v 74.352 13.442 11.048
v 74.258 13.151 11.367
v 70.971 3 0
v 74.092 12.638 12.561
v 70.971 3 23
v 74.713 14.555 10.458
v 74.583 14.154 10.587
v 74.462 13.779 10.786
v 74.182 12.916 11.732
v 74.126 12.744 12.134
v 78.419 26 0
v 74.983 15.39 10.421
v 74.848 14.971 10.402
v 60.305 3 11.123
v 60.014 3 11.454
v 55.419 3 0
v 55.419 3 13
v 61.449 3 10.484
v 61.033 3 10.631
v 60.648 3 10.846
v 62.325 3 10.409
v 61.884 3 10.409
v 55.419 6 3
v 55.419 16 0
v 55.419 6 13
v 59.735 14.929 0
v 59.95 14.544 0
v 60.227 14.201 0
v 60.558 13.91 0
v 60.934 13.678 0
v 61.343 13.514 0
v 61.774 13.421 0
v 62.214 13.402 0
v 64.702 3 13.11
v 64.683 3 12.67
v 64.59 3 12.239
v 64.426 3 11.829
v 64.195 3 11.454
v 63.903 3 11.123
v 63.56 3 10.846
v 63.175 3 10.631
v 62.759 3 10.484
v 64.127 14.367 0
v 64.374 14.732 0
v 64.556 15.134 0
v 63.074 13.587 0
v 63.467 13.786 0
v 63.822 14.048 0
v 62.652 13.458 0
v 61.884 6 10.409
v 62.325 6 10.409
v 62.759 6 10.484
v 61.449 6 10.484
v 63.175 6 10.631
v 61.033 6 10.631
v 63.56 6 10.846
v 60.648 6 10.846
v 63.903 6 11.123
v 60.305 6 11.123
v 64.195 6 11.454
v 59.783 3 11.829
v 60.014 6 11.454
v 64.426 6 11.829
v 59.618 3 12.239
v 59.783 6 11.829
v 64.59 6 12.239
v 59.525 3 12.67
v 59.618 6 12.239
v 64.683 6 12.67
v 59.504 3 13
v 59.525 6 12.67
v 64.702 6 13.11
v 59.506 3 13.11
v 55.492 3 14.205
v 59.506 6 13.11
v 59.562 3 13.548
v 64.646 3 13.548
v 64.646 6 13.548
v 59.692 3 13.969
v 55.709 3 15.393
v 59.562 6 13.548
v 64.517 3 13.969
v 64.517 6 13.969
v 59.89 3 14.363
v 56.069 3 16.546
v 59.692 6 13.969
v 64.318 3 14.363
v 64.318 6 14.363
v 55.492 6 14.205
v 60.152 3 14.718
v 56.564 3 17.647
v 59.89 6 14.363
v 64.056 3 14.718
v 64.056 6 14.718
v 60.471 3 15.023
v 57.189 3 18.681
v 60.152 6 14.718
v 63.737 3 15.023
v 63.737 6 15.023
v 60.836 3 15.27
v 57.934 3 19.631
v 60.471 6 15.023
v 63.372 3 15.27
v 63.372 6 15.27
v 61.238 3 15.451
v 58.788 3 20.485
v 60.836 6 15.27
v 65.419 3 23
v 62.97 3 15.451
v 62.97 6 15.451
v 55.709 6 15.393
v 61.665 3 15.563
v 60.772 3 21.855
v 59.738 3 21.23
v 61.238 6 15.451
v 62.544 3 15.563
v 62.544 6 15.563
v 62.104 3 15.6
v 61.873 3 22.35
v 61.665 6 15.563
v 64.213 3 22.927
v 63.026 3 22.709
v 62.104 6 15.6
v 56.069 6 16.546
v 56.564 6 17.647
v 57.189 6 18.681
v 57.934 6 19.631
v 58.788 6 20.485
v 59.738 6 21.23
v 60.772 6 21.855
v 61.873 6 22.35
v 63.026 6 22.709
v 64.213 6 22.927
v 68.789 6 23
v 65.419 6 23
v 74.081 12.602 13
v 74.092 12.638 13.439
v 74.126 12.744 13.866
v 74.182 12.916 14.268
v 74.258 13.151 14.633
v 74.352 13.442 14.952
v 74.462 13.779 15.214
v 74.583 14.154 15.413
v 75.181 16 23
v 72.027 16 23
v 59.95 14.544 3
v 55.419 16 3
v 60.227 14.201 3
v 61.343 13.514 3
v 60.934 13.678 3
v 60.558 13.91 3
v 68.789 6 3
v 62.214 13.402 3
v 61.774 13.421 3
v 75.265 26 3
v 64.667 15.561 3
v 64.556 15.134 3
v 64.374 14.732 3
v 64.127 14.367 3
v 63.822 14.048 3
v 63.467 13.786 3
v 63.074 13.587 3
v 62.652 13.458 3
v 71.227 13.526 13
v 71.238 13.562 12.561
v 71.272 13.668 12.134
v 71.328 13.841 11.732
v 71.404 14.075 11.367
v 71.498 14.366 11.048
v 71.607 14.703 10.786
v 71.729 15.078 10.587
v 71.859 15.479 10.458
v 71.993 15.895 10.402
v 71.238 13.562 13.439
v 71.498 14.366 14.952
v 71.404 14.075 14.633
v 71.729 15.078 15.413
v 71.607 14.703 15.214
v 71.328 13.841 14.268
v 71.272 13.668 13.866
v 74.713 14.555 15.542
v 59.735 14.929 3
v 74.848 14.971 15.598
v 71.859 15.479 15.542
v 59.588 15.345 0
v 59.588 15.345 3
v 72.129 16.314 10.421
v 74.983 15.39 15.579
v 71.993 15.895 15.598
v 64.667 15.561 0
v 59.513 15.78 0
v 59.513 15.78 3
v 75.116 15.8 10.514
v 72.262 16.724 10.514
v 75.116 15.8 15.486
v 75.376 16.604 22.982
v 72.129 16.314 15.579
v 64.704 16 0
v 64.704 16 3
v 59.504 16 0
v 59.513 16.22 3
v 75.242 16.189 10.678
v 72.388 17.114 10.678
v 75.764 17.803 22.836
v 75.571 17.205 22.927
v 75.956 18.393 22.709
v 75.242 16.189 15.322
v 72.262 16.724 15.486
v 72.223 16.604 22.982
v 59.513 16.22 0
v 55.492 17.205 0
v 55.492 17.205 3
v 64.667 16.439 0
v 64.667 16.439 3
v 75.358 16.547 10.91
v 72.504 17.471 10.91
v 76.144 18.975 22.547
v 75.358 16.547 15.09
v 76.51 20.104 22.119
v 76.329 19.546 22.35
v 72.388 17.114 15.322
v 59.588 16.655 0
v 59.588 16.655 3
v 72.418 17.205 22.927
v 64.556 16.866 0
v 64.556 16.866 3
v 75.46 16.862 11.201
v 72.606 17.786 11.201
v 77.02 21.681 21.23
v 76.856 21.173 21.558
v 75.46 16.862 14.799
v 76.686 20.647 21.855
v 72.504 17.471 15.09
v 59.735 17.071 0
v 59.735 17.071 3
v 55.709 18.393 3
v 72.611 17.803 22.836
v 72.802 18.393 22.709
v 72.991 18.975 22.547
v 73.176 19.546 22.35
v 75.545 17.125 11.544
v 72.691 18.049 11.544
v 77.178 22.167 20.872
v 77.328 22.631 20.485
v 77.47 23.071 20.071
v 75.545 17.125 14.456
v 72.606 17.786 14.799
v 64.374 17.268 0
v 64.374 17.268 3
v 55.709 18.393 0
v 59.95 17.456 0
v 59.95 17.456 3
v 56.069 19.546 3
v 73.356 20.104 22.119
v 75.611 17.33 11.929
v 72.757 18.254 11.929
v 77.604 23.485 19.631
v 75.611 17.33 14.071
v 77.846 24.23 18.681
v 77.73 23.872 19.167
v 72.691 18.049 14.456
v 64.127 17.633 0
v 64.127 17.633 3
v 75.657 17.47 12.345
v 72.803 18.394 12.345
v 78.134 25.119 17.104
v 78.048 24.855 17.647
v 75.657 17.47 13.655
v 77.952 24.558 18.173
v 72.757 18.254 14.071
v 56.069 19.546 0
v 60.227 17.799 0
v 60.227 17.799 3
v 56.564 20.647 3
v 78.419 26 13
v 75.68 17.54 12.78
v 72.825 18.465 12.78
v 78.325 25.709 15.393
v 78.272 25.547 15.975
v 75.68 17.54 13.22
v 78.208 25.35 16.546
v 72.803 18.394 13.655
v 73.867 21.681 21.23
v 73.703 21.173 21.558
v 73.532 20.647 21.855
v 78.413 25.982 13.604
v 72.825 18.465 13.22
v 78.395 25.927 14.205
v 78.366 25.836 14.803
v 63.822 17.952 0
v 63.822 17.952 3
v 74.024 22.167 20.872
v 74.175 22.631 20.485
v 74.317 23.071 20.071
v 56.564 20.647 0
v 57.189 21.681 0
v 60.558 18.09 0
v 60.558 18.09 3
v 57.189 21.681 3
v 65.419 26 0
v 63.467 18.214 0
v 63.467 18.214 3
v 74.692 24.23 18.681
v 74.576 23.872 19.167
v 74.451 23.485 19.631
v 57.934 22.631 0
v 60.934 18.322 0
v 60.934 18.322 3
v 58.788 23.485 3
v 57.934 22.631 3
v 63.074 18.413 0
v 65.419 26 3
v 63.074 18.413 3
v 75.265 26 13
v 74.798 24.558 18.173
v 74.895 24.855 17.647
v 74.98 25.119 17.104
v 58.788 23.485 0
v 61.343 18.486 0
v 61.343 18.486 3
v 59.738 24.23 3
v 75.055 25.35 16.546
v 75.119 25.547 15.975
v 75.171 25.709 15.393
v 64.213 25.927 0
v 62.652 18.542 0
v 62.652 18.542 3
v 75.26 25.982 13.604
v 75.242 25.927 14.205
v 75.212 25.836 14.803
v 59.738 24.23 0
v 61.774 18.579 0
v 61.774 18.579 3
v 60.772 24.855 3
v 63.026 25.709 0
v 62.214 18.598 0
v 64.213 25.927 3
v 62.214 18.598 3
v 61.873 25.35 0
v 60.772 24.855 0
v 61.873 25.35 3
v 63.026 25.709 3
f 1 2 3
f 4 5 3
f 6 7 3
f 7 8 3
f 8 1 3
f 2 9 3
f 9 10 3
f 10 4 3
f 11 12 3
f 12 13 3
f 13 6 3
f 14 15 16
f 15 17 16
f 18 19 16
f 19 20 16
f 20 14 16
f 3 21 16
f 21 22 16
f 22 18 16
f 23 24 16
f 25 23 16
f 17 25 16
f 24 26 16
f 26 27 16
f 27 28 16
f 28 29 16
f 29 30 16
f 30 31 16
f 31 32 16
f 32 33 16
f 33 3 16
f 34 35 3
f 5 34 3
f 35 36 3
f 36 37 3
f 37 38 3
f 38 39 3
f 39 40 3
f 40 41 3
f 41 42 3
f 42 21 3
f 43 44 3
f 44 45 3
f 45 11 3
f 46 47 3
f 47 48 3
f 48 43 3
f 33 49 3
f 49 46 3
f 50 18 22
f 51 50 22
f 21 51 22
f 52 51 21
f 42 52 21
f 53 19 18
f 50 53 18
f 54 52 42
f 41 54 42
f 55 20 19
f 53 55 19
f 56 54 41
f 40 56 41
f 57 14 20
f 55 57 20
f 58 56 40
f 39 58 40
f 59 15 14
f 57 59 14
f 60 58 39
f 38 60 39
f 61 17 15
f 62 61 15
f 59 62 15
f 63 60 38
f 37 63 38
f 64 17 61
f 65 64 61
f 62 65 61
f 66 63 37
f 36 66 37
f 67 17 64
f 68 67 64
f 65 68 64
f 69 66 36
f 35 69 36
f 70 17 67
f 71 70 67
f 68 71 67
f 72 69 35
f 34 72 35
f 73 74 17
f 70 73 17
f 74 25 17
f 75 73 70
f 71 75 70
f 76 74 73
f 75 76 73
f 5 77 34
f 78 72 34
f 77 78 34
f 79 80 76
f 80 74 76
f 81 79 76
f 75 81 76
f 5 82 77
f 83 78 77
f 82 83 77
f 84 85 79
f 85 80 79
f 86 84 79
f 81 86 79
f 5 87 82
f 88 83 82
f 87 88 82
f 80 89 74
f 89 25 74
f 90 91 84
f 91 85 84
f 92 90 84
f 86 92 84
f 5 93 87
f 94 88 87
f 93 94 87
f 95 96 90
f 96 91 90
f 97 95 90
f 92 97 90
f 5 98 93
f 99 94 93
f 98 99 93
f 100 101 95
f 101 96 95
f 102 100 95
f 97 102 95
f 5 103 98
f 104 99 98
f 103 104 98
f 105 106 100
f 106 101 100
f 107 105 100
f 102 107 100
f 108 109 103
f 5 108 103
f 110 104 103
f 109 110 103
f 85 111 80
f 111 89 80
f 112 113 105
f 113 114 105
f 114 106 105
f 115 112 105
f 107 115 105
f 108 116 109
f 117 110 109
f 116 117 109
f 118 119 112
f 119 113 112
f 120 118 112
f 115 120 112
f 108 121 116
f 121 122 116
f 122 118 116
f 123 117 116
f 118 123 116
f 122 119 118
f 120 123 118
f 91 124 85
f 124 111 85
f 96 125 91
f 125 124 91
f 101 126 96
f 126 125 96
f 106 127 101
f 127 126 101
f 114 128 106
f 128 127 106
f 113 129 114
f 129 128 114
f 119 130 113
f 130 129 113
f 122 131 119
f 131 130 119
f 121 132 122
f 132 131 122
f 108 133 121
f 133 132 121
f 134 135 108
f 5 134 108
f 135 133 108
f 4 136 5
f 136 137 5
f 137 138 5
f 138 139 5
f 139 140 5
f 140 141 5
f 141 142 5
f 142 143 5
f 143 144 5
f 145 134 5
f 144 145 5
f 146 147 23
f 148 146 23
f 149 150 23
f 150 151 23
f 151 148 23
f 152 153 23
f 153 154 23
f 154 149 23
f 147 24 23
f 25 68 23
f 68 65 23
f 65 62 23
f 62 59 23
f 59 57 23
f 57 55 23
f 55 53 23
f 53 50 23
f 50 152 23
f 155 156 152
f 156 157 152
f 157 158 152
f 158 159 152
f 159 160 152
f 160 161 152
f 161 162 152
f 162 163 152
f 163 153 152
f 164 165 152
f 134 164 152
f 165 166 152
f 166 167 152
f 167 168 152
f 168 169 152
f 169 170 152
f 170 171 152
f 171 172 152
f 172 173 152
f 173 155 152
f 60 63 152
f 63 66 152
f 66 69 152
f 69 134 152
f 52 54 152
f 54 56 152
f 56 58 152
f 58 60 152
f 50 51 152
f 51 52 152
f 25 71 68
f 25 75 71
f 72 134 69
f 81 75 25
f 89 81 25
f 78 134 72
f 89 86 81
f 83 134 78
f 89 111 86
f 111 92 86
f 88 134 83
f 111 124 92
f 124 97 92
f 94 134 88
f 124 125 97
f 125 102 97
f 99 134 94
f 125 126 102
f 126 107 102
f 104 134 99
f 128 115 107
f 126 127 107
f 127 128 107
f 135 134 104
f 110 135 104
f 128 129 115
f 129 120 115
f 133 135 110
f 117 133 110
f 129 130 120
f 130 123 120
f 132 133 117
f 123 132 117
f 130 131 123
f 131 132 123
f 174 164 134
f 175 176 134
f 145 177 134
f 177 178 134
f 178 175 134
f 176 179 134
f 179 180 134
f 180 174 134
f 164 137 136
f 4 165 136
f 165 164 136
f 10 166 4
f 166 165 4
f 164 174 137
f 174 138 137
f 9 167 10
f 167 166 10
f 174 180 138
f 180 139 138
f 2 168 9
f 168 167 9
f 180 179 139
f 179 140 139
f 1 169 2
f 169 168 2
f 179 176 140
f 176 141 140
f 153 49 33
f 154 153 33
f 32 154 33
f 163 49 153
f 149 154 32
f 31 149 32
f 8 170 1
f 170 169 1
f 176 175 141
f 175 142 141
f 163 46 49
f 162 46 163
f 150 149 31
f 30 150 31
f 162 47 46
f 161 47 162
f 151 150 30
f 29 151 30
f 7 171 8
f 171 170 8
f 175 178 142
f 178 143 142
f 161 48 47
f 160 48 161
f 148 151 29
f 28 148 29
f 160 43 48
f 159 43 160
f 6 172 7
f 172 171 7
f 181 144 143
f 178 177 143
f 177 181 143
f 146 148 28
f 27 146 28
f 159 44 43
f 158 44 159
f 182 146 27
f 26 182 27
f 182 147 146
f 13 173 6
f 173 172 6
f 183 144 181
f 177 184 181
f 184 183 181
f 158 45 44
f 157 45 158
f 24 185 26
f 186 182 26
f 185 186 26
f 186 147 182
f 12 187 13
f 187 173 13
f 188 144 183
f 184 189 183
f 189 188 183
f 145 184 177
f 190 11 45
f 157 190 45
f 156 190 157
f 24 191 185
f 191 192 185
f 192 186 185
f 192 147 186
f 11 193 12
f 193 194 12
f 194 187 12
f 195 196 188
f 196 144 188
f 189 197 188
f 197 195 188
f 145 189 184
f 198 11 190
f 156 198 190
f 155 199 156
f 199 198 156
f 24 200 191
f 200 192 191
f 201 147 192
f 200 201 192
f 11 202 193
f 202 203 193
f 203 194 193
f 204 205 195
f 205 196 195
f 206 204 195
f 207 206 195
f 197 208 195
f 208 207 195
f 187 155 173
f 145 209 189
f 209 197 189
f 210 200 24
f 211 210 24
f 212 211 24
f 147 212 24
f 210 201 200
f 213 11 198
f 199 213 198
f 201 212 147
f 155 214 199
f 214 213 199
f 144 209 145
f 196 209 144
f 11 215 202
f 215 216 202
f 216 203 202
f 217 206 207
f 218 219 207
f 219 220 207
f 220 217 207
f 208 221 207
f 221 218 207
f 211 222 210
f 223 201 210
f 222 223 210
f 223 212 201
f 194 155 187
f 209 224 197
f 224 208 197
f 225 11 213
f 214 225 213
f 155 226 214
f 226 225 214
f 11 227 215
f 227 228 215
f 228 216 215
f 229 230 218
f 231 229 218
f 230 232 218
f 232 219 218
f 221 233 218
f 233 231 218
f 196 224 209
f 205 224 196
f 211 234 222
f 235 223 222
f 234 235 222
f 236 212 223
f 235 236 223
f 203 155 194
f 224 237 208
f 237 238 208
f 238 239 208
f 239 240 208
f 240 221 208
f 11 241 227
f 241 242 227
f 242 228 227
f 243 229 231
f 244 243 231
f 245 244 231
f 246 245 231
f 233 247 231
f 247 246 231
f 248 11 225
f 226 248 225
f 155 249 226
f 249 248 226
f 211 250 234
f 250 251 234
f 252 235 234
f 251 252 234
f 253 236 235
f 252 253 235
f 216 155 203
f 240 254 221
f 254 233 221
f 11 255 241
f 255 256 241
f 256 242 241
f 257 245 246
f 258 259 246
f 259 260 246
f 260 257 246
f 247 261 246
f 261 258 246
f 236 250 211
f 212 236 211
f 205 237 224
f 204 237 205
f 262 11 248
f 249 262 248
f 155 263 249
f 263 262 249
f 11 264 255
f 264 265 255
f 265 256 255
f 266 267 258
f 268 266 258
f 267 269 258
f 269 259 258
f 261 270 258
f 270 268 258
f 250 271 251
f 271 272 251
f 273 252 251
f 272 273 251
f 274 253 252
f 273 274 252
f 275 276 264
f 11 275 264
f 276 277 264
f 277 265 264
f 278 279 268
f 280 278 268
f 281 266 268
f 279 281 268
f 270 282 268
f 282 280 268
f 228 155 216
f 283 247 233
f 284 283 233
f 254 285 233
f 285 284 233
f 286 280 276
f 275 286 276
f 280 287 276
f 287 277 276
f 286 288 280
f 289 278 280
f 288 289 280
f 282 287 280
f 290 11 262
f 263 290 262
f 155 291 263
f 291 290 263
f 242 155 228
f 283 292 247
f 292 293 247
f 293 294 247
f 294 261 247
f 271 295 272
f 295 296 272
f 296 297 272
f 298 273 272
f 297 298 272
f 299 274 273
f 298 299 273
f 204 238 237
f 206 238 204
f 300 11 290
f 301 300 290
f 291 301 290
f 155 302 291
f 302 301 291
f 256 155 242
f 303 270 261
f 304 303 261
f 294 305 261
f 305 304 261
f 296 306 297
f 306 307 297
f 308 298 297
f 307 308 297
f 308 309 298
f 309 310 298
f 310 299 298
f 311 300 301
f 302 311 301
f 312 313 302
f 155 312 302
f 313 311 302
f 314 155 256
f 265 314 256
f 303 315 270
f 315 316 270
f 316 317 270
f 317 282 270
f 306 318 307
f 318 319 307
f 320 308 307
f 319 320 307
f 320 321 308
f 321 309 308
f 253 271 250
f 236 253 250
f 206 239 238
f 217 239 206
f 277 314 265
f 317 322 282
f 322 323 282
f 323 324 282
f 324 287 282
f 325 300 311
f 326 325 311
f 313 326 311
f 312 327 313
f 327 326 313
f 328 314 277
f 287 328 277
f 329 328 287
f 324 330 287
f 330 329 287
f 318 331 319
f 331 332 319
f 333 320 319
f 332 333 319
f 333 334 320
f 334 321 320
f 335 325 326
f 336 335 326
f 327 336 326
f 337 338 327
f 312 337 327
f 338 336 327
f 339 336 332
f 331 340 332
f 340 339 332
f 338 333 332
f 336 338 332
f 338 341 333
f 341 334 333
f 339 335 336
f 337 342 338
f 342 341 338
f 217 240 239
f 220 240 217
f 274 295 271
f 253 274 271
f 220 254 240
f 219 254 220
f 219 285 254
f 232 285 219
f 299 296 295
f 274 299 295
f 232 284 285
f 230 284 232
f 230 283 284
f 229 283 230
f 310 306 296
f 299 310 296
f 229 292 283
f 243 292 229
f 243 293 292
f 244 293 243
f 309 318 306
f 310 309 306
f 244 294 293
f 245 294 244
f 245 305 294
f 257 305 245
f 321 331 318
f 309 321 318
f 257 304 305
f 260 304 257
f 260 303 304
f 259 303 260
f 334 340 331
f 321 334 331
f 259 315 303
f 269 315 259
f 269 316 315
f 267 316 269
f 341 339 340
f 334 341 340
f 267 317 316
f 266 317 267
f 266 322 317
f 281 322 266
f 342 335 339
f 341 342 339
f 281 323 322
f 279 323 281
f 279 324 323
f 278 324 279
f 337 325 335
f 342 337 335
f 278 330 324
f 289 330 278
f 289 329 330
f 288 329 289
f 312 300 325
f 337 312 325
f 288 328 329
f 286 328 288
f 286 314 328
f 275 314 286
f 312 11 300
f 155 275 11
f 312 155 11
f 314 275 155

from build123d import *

# Parameters (mm, degrees)
BOSS_EXTRU_1_DEPTH      = 3
ESQUISSE2_W             = 20
ESQUISSE2_H             = 24.175680092
BOSS_EXTRU_2_DEPTH      = 3
ESQUISSE3_W             = 15.552617377
ESQUISSE3_H             = 3
BOSS_EXTRU_3_DEPTH      = 20
ENL_V_MAT_EXTRU_1_DEPTH = 20
CONG_1_R                = 10
ESQUISSE5_R             = 2.6
ENL_V_MAT_EXTRU_2_DEPTH = 20
ESQUISSE6_R             = 2.6
ENL_V_MAT_EXTRU_3_DEPTH = 20
ESQUISSE7_R             = 2.6
ENL_V_MAT_EXTRU_4_DEPTH = 20


with BuildPart() as part:
    # Esquisse1 → Boss.-Extru.1 (new body)
    with BuildSketch(Plane.XY):
        Polygon((55.418780356, 3), (55.418780356, 26), (78.418780356, 26), (70.971397733, 3), align=None)
    extrude(amount=BOSS_EXTRU_1_DEPTH)

    # Esquisse2 → Boss.-Extru.2 (add)
    with BuildSketch(Plane(origin=(63.357248994, -20.515029356, 0), x_dir=(0, 0, 1), z_dir=(-0.9513693063481515, 0.30805266260598535, 0))):
        with Locations((13, 36.804876006)):
            Rectangle(ESQUISSE2_W, ESQUISSE2_H)
    extrude(amount=BOSS_EXTRU_2_DEPTH)

    # Esquisse3 → Boss.-Extru.3 (add)
    with BuildSketch(Plane.XY.offset(3)):
        with Locations((63.195089045, 4.5)):
            Rectangle(ESQUISSE3_W, ESQUISSE3_H)
    extrude(amount=BOSS_EXTRU_3_DEPTH)

    # Esquisse4 → Enlèv. mat.-Extru.1 (cut)
    with BuildSketch(Plane.XY.offset(23)):
        Polygon((78.418780356, 26), (75.265430779, 26), (75.564672437, 26.924157988), align=None)
    extrude(amount=-ENL_V_MAT_EXTRU_1_DEPTH, mode=Mode.SUBTRACT)

    # Congé1
    # the kernel refuses this fillet: 10 mm, written as the material it takes off along each edge
    with BuildSketch(Plane(origin=(55.418780356, 31, 23), x_dir=(0, 0, -1), z_dir=(0, -1, 0)), Plane(origin=(55.418780356, 26, -25), x_dir=(0, -1, 0), z_dir=(0, 0, 1))) as cong_1_piece_1:
        with BuildLine():
            CenterArc((CONG_1_R, CONG_1_R), CONG_1_R, 180, 90)
            Line((0, CONG_1_R), (0, 0))
            Line((0, 0), (CONG_1_R, 0))
        make_face()
    extrude(amount=53, mode=Mode.SUBTRACT)
    with BuildSketch(Plane(origin=(103.418780356, 26, 23), x_dir=(0, 0, -1), z_dir=(-1, 0, 0))) as cong_1_piece_2:
        with BuildLine():
            CenterArc((CONG_1_R, CONG_1_R), CONG_1_R, 180, 90)
            Line((0, CONG_1_R), (0, 0))
            Line((0, 0), (CONG_1_R, 0))
        make_face()
    extrude(amount=53.153349577, mode=Mode.SUBTRACT)

    # Esquisse5 → Enlèv. mat.-Extru.2 (cut)
    with BuildSketch(Plane.XY.offset(3)):
        with Locations((62.104113123, 16)):
            Circle(ESQUISSE5_R)
    extrude(amount=-ENL_V_MAT_EXTRU_2_DEPTH, mode=Mode.SUBTRACT)

    # Esquisse6 → Enlèv. mat.-Extru.3 (cut)
    with BuildSketch(Plane(origin=(0, 6, 0), x_dir=(1, 0, 0), z_dir=(0, 1, 0))):
        with Locations(Location((62.104113123, -13, 0), (0, 0, 270))):
            Circle(ESQUISSE6_R)
    extrude(amount=-ENL_V_MAT_EXTRU_3_DEPTH, mode=Mode.SUBTRACT)

    # Esquisse7 → Enlèv. mat.-Extru.4 (cut)
    with BuildSketch(Plane(origin=(60.503141075, -19.590871368, 0), x_dir=(0, 0, 1), z_dir=(-0.9513693063481516, 0.30805266260598513, 0))):
        with Locations(Location((13, 37.410153061, 0), (0, 0, 270))):
            Circle(ESQUISSE7_R)
    extrude(amount=-ENL_V_MAT_EXTRU_4_DEPTH, mode=Mode.SUBTRACT)


solid = part.part
